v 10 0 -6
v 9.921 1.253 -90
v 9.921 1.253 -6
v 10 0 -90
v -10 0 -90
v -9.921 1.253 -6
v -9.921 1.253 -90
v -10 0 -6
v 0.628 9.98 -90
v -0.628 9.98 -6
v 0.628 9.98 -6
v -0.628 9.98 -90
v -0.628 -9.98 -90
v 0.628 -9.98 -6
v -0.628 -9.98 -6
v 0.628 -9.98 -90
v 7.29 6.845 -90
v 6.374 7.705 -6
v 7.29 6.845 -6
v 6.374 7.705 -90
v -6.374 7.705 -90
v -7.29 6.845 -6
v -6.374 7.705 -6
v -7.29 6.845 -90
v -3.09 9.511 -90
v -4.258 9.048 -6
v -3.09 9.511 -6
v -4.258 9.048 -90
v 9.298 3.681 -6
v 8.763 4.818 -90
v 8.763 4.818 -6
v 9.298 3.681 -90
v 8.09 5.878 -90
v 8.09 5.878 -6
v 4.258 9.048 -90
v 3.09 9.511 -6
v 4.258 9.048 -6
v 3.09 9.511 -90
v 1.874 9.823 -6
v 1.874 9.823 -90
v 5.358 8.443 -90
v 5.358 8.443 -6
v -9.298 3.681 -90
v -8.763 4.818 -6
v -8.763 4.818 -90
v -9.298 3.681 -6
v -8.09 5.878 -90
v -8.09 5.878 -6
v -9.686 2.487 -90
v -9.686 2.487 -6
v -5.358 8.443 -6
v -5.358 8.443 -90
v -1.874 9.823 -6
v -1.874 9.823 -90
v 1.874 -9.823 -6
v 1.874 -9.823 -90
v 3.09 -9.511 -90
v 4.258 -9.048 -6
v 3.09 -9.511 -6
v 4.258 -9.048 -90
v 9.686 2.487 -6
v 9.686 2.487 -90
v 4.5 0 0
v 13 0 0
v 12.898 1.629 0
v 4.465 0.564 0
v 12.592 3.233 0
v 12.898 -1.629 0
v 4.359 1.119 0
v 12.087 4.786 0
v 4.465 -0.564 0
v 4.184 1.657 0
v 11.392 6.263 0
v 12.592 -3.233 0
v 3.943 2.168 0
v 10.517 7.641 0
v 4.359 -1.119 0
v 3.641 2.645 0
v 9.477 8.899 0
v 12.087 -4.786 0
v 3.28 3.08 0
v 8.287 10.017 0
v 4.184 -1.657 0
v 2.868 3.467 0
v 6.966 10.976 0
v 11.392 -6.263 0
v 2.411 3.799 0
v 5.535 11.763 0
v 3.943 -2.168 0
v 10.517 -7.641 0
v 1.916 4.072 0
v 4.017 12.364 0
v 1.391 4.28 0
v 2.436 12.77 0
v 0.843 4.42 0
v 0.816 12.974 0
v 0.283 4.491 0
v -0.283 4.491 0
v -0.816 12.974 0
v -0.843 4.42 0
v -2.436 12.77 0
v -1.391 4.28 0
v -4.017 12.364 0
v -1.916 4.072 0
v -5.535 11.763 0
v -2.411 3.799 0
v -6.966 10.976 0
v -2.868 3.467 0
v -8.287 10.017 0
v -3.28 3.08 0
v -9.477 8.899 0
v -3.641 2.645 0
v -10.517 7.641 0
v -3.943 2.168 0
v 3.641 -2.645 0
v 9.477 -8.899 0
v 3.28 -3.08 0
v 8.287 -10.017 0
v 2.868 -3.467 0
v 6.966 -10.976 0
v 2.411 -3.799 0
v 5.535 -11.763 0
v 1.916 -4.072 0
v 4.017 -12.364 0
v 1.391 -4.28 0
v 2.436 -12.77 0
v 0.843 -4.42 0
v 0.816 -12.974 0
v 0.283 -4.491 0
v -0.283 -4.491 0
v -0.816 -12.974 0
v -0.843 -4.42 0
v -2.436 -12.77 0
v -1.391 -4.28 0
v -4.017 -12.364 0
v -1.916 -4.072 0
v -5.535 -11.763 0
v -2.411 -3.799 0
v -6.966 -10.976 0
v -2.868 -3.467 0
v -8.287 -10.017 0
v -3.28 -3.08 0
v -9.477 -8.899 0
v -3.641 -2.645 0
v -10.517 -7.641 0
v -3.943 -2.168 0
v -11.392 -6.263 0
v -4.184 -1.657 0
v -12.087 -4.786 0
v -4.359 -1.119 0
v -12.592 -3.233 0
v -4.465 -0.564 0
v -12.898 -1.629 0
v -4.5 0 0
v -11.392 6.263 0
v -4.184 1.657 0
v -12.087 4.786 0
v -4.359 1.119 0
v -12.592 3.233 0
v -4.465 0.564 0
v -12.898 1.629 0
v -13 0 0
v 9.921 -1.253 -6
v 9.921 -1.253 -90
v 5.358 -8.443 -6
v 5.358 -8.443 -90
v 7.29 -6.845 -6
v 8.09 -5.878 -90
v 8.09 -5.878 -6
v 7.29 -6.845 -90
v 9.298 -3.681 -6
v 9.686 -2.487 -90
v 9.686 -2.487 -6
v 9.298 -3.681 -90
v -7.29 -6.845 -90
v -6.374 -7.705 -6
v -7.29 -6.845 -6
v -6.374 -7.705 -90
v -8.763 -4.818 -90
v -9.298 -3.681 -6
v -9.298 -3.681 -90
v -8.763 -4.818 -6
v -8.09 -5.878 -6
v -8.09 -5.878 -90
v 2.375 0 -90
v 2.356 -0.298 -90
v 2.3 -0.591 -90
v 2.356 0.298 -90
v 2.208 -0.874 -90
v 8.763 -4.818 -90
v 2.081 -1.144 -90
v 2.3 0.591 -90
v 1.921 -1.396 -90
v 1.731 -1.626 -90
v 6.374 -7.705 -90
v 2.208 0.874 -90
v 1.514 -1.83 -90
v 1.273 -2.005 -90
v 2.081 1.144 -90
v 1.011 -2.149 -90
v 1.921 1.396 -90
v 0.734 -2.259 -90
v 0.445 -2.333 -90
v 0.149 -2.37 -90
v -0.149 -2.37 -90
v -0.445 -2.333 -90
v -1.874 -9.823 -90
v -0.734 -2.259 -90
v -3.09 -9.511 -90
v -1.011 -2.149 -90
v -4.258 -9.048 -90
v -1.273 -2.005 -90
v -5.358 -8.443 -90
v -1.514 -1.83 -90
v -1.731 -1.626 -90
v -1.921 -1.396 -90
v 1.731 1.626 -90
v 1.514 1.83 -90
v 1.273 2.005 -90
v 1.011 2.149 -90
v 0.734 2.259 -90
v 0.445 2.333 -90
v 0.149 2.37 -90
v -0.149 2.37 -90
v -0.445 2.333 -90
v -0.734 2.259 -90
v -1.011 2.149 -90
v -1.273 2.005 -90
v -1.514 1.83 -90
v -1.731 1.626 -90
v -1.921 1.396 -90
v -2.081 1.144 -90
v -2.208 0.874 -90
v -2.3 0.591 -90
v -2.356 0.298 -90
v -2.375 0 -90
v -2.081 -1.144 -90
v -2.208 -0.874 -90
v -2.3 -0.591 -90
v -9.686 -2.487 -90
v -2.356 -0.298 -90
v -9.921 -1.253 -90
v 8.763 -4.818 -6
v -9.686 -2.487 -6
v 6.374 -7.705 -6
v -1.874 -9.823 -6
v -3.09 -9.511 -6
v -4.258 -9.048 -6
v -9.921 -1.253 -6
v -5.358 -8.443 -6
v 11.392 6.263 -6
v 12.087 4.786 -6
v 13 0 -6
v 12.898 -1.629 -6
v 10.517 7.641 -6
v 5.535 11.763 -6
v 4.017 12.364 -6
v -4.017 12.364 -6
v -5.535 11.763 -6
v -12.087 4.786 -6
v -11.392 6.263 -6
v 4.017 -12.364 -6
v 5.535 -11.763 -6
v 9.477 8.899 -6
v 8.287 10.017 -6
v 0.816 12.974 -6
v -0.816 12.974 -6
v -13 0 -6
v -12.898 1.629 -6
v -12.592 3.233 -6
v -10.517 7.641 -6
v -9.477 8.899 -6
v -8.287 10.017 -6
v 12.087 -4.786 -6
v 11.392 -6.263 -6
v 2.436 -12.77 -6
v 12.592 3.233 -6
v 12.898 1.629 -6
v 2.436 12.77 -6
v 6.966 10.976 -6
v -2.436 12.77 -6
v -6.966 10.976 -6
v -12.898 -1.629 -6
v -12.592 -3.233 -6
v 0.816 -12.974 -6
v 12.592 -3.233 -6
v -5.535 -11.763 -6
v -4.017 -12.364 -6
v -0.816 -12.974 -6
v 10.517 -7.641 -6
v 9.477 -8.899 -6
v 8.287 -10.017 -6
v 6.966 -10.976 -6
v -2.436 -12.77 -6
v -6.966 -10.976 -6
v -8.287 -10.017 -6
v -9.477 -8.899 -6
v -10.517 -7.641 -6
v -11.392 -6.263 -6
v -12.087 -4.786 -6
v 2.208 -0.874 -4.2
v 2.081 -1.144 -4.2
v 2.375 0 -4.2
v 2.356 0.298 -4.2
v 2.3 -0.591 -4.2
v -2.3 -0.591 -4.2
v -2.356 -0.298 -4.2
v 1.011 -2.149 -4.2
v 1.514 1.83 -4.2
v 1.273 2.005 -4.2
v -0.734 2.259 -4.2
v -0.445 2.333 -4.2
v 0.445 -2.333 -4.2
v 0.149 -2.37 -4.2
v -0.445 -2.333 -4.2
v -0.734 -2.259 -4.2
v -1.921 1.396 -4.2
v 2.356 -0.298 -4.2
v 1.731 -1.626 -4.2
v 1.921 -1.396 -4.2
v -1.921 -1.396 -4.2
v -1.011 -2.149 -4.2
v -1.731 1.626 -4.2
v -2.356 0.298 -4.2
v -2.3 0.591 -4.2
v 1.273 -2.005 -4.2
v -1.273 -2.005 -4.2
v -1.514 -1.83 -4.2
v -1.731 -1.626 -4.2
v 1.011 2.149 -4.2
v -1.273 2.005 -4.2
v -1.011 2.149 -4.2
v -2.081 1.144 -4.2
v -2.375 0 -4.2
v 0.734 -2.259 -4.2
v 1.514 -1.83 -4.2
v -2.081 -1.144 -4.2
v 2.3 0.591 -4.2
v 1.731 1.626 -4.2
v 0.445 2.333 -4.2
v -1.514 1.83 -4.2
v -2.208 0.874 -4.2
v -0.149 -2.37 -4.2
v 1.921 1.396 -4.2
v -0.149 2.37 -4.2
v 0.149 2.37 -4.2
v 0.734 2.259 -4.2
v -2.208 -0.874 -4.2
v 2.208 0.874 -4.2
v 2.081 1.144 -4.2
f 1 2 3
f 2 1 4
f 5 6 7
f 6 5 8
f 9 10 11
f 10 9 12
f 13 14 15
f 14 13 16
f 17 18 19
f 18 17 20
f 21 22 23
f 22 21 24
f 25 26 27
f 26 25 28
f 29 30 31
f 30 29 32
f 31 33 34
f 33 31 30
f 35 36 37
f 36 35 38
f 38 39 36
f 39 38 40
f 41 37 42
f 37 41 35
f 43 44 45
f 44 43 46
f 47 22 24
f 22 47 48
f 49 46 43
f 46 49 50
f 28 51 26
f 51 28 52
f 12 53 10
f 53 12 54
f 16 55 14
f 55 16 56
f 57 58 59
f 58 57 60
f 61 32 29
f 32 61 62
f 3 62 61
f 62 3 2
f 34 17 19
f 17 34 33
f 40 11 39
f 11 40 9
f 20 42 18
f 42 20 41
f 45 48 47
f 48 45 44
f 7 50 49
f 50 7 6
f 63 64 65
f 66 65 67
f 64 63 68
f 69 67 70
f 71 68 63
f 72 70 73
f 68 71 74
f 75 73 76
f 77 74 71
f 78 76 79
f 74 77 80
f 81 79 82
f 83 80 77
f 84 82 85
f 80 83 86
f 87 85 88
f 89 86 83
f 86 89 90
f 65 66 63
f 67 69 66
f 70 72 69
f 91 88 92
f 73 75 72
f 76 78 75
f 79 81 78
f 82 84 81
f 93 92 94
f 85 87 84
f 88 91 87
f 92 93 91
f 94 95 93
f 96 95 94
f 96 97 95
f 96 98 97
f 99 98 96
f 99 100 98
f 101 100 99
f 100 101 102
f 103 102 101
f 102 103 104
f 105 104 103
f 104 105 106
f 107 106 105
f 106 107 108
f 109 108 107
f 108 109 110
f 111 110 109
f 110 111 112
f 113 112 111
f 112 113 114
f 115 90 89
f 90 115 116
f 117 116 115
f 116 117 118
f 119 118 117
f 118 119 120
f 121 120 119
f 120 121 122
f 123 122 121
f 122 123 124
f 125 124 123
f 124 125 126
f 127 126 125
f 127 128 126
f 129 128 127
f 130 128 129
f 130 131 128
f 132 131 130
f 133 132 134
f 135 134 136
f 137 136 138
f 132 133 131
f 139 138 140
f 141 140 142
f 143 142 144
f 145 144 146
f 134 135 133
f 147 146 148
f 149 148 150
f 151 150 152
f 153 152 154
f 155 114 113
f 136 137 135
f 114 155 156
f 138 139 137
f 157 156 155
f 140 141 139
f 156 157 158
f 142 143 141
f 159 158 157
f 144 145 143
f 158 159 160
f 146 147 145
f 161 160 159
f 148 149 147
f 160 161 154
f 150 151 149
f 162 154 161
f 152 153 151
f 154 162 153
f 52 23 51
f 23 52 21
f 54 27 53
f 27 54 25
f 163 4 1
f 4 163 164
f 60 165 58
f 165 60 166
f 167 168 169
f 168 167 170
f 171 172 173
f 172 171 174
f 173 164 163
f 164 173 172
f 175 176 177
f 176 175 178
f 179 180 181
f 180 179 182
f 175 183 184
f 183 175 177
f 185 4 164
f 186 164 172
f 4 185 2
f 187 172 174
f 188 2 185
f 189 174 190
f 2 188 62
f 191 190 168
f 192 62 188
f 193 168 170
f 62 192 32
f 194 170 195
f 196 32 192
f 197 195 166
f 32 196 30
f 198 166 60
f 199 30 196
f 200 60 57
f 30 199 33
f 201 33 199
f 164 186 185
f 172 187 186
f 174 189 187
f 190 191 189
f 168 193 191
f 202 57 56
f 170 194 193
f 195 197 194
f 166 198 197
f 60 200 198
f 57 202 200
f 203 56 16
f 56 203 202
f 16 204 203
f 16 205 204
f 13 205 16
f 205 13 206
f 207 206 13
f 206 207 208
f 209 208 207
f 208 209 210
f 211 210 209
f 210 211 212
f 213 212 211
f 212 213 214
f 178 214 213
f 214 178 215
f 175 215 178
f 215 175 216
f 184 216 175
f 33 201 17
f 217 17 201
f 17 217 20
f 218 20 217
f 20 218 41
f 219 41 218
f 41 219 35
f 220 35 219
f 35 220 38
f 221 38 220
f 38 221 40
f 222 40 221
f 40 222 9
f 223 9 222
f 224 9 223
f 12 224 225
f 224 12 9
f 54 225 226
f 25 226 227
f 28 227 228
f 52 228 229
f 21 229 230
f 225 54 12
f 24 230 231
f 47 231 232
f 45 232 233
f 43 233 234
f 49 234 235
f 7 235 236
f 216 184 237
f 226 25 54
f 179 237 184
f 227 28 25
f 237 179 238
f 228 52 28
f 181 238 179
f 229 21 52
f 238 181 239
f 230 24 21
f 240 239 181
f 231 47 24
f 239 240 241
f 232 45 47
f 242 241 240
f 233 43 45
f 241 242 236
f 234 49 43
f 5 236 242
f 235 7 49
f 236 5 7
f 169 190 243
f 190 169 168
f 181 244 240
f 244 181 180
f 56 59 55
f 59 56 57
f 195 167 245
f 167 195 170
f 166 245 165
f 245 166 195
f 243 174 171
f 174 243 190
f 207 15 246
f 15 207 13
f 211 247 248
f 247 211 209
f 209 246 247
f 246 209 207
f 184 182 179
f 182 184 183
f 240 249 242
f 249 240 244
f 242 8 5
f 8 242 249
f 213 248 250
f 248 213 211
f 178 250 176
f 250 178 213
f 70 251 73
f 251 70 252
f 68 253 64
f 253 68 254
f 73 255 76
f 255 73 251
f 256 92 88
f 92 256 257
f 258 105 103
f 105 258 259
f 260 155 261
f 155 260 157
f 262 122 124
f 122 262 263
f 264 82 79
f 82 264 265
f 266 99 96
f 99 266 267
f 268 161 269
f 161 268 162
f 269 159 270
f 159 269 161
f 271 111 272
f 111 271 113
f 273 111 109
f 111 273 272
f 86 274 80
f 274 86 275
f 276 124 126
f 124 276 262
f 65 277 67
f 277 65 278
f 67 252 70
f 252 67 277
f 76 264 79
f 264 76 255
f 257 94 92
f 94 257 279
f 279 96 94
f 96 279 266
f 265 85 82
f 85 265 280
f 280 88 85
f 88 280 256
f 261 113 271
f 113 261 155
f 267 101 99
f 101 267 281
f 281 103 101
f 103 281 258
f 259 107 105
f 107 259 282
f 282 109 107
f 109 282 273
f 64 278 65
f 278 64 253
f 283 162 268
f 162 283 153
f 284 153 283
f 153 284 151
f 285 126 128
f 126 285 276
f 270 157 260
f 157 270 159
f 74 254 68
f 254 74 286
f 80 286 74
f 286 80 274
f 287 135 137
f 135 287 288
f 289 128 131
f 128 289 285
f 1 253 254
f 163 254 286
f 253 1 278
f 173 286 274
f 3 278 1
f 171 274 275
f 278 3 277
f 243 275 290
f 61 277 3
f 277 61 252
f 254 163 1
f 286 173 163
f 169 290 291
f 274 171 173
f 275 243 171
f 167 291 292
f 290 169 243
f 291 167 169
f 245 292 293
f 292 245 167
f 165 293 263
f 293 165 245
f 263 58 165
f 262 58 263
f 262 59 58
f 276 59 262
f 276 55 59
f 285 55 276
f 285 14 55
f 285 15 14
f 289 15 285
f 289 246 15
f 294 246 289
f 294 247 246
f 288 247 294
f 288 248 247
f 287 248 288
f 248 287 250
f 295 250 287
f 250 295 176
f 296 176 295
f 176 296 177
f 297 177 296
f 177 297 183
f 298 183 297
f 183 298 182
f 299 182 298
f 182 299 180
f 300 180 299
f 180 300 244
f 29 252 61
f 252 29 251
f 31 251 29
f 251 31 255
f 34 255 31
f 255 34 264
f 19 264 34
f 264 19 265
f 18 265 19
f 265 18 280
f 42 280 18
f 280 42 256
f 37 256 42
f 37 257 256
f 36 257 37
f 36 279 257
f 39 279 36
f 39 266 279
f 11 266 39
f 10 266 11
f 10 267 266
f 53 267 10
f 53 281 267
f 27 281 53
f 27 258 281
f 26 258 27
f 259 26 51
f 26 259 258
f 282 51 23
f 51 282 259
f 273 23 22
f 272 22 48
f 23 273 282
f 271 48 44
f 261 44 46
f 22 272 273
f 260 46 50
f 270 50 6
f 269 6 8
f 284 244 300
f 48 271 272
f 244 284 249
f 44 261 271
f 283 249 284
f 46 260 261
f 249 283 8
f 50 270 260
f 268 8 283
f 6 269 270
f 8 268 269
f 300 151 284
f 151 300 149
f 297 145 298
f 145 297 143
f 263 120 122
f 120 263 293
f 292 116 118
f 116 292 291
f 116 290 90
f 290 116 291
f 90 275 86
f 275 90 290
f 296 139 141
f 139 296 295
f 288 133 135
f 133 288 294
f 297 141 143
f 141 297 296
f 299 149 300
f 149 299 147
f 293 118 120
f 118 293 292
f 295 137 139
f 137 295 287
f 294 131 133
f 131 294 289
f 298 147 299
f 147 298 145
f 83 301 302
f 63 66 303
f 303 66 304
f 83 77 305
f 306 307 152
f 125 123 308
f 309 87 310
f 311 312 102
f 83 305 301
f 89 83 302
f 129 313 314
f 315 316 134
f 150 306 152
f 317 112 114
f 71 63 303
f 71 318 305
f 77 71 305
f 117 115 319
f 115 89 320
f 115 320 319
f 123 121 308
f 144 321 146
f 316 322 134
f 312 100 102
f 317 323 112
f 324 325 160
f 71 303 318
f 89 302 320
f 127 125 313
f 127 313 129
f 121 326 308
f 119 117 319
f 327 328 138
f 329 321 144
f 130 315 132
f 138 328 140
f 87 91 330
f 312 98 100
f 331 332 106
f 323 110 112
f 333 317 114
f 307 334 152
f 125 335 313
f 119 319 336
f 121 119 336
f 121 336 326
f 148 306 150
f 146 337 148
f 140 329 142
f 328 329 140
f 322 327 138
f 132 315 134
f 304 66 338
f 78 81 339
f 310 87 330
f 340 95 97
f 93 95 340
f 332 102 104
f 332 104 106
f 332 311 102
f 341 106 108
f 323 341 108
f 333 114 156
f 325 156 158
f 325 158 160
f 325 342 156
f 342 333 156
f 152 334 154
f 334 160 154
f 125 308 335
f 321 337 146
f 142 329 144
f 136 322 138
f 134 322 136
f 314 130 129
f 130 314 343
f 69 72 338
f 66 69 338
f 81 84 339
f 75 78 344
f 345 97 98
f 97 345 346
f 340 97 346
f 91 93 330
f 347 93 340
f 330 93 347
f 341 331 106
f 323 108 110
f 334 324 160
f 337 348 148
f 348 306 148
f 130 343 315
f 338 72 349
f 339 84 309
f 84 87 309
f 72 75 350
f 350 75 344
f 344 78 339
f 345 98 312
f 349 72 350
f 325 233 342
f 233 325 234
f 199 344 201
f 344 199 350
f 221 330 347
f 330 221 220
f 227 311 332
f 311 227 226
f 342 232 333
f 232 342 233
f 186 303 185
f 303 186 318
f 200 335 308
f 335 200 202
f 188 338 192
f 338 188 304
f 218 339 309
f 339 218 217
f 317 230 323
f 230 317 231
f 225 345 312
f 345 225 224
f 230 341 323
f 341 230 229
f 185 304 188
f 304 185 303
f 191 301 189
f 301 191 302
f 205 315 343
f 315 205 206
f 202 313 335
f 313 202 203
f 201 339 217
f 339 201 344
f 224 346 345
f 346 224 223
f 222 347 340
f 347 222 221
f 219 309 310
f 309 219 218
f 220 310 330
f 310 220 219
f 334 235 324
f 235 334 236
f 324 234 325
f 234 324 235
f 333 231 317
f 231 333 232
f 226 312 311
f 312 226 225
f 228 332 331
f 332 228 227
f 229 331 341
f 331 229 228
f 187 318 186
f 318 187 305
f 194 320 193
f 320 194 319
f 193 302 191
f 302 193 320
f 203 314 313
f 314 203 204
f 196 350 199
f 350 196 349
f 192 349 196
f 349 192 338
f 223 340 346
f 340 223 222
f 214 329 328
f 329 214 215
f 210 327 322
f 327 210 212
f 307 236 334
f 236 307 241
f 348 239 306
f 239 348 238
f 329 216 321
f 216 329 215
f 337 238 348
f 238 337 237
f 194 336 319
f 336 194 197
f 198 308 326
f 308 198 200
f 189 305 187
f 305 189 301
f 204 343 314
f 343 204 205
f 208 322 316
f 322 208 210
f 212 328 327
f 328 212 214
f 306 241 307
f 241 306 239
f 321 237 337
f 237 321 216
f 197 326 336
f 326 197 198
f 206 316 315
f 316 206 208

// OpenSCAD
$fn = 50;


difference() {
	union() {
		translate(v = [0, 0, -90.0000000000]) {
			cylinder(h = 90, r = 10.0000000000);
		}
		translate(v = [0, 0, -6.0000000000]) {
			cylinder(h = 6, r = 13.0000000000);
		}
	}
	union() {
		translate(v = [0, 0, 0]) {
			rotate(a = [0, 0, 0]) {
				difference() {
					union() {
						#translate(v = [0, 0, -90.0000000000]) {
							cylinder(h = 90, r = 2.2500000000);
						}
						#translate(v = [0, 0, -4.2000000000]) {
							cylinder(h = 4.2000000000, r1 = 2.3750000000, r2 = 4.5000000000);
						}
						#translate(v = [0, 0, -90.0000000000]) {
							cylinder(h = 90, r = 2.3750000000);
						}
						#translate(v = [0, 0, -90.0000000000]) {
							cylinder(h = 90, r = 2.2500000000);
						}
					}
					union();
				}
			}
		}
	}
}
